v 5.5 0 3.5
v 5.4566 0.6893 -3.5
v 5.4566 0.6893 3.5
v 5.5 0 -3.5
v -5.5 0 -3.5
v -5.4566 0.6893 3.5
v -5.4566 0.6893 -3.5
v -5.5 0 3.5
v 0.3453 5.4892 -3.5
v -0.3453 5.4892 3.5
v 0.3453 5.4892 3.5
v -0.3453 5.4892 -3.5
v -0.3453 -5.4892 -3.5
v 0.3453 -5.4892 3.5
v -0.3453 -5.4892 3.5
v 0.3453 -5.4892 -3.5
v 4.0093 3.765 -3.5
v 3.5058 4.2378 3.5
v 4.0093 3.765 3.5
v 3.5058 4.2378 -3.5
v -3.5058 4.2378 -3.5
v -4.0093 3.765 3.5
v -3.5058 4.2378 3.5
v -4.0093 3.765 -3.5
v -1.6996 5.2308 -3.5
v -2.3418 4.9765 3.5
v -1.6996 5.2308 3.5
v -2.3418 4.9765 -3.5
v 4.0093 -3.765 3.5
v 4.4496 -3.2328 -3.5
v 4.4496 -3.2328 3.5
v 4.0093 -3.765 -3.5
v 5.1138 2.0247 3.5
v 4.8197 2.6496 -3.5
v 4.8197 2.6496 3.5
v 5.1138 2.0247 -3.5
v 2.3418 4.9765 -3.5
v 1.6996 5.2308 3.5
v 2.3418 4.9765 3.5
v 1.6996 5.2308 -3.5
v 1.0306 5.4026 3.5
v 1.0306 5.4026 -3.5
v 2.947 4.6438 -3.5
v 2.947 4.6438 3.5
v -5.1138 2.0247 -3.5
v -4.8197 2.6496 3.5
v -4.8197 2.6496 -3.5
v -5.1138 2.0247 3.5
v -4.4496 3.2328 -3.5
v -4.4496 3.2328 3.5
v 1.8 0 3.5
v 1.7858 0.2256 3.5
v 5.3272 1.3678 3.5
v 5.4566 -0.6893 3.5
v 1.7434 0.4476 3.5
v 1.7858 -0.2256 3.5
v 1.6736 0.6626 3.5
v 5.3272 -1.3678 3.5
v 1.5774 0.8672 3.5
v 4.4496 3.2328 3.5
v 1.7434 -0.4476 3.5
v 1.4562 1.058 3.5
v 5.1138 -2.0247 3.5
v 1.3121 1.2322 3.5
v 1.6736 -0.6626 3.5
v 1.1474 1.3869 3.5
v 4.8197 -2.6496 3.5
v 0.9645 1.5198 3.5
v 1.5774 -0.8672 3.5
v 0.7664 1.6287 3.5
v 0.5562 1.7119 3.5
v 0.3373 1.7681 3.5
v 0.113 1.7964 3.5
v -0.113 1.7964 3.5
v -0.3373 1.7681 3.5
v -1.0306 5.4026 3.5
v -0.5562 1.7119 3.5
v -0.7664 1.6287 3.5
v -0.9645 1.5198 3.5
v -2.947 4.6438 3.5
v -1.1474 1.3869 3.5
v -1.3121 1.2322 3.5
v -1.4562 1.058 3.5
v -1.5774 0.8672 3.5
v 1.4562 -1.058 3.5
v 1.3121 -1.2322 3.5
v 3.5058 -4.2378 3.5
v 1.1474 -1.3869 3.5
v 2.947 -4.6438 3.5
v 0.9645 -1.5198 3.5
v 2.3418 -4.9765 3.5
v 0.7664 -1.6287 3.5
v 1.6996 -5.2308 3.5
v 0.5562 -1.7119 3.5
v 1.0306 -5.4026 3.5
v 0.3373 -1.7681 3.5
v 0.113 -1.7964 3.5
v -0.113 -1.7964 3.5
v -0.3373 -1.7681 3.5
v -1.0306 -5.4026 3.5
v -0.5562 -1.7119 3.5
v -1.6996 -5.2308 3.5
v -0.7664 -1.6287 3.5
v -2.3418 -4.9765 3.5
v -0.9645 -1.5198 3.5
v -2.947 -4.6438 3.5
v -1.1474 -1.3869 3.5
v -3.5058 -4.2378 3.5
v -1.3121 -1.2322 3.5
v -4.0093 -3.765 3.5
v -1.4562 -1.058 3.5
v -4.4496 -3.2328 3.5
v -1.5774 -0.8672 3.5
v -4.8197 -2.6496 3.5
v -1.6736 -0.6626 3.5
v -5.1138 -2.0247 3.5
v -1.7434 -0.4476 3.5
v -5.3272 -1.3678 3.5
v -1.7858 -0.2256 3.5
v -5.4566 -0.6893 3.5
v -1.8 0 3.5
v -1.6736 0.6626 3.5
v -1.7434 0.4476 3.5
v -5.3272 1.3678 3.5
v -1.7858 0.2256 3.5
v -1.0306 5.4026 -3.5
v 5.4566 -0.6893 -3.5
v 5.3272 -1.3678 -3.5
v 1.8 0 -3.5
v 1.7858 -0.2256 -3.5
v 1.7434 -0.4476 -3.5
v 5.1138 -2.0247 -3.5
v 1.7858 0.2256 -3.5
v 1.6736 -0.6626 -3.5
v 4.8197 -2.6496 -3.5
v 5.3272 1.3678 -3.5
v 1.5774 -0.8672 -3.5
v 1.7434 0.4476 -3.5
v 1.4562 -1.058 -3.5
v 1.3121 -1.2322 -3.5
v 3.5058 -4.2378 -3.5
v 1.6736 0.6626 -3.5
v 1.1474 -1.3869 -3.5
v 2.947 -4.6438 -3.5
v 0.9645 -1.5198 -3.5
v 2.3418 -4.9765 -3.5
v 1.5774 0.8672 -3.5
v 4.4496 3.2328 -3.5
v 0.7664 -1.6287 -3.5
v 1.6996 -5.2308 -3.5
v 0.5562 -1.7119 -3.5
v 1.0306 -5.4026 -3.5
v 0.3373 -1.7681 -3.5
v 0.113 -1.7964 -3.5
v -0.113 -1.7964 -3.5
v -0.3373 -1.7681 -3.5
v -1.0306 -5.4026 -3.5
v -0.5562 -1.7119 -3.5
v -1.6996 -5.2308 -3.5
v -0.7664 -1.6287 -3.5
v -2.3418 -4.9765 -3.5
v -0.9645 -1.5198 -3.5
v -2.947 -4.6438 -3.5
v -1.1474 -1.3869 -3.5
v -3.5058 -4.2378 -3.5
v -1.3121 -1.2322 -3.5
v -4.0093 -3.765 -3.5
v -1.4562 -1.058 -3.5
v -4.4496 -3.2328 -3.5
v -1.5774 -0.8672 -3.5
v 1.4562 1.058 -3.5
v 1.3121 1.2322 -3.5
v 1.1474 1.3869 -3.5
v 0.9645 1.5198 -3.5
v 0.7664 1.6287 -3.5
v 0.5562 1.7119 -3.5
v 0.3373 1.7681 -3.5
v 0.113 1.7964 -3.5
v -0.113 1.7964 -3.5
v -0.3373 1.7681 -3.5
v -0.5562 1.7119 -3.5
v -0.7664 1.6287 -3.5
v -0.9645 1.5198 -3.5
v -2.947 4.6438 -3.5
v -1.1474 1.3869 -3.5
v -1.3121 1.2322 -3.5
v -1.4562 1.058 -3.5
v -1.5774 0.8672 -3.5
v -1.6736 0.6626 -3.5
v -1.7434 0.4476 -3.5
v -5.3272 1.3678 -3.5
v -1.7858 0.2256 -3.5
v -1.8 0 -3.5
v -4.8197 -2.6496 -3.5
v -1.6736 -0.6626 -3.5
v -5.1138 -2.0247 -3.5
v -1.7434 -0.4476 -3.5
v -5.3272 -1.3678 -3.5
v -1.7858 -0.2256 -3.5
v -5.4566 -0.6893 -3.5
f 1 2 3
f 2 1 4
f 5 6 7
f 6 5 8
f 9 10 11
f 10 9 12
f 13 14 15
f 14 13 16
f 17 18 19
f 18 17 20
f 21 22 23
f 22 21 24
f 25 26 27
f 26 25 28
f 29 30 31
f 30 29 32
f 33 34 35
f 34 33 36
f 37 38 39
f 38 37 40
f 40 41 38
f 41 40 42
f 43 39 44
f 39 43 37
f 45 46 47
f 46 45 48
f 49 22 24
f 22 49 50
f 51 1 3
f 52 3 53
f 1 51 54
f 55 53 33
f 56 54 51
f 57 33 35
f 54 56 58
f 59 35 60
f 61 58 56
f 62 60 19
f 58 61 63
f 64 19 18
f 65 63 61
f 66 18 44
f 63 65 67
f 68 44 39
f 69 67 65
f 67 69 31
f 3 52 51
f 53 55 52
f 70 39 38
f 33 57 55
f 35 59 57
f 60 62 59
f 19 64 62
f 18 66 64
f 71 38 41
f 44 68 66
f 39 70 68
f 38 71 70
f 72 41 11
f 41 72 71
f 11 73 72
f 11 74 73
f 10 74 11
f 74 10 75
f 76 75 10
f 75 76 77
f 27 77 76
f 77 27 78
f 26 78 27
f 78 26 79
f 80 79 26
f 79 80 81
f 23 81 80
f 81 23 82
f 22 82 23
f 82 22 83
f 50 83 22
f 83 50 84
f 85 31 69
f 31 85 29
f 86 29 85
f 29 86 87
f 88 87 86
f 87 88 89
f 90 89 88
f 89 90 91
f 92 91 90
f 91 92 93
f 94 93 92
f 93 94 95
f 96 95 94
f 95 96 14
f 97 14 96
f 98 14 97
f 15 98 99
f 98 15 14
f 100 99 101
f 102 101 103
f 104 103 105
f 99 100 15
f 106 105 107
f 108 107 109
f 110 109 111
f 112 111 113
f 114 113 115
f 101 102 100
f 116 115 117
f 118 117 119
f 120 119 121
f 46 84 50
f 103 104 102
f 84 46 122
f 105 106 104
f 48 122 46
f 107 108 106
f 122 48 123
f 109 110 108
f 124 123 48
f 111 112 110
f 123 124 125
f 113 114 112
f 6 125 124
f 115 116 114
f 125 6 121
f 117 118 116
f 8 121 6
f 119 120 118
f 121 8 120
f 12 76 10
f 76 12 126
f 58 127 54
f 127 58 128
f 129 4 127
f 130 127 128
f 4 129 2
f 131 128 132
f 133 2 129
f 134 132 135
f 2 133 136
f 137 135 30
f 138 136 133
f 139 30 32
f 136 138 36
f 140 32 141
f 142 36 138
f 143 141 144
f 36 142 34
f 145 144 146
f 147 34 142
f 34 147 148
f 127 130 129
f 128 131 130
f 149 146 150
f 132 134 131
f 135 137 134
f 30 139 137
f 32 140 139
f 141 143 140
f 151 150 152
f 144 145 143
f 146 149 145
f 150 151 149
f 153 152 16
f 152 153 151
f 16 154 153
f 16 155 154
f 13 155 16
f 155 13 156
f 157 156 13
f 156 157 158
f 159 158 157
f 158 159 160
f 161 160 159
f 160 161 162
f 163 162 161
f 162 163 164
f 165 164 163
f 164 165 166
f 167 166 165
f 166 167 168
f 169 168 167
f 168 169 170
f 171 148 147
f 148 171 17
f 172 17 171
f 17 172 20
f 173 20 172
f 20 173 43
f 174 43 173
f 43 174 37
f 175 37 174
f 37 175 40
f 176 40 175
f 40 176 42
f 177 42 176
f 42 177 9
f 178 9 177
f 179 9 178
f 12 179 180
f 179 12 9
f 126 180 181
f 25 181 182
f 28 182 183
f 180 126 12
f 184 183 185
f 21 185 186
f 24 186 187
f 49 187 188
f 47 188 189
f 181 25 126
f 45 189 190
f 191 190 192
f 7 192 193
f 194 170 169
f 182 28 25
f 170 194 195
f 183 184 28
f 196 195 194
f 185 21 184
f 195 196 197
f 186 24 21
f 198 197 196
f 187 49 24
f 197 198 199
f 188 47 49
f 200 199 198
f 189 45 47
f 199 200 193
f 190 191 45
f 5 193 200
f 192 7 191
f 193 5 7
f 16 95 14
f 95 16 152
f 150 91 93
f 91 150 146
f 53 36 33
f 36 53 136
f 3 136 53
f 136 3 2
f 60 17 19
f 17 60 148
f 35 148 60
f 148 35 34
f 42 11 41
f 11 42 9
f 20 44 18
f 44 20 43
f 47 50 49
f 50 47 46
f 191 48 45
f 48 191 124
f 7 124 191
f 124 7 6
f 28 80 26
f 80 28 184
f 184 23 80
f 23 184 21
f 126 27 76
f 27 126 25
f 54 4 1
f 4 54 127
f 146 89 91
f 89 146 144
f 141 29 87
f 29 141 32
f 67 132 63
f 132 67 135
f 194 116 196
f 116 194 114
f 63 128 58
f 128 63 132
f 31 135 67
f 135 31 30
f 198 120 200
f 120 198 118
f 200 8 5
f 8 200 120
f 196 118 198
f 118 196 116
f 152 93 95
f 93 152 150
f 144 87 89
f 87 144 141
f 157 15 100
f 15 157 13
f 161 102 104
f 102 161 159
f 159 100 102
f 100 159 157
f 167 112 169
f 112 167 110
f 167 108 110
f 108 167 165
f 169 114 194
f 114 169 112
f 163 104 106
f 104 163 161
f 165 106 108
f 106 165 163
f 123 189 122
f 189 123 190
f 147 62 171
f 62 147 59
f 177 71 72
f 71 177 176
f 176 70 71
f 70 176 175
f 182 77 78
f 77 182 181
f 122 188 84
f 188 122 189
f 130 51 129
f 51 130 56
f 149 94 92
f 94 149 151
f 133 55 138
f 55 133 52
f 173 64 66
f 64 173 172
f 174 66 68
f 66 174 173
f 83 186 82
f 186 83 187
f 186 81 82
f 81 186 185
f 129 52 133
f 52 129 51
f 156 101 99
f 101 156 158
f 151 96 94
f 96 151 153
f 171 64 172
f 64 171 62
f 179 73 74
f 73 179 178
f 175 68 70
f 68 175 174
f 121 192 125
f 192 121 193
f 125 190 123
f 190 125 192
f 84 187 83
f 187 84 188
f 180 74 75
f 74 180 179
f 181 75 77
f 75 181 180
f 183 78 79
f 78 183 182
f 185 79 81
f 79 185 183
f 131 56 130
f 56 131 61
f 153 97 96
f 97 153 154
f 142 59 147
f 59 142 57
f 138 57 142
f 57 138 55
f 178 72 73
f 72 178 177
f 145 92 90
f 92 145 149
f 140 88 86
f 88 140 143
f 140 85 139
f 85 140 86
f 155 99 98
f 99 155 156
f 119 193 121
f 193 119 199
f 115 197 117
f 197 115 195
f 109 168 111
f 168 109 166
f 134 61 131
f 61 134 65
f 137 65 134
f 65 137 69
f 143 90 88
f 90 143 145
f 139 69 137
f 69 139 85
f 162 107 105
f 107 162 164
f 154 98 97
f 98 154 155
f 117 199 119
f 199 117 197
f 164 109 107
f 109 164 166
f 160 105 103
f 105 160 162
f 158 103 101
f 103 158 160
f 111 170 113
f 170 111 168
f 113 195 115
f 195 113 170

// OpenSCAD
$fn = 50;


difference() {
	union() {
		translate(v = [0, 0, -3.5000000000]) {
			cylinder(h = 7, r = 5.5000000000);
		}
	}
	union() {
		translate(v = [0, 0, -100.0000000000]) {
			cylinder(h = 200, r = 1.8000000000);
		}
	}
}
